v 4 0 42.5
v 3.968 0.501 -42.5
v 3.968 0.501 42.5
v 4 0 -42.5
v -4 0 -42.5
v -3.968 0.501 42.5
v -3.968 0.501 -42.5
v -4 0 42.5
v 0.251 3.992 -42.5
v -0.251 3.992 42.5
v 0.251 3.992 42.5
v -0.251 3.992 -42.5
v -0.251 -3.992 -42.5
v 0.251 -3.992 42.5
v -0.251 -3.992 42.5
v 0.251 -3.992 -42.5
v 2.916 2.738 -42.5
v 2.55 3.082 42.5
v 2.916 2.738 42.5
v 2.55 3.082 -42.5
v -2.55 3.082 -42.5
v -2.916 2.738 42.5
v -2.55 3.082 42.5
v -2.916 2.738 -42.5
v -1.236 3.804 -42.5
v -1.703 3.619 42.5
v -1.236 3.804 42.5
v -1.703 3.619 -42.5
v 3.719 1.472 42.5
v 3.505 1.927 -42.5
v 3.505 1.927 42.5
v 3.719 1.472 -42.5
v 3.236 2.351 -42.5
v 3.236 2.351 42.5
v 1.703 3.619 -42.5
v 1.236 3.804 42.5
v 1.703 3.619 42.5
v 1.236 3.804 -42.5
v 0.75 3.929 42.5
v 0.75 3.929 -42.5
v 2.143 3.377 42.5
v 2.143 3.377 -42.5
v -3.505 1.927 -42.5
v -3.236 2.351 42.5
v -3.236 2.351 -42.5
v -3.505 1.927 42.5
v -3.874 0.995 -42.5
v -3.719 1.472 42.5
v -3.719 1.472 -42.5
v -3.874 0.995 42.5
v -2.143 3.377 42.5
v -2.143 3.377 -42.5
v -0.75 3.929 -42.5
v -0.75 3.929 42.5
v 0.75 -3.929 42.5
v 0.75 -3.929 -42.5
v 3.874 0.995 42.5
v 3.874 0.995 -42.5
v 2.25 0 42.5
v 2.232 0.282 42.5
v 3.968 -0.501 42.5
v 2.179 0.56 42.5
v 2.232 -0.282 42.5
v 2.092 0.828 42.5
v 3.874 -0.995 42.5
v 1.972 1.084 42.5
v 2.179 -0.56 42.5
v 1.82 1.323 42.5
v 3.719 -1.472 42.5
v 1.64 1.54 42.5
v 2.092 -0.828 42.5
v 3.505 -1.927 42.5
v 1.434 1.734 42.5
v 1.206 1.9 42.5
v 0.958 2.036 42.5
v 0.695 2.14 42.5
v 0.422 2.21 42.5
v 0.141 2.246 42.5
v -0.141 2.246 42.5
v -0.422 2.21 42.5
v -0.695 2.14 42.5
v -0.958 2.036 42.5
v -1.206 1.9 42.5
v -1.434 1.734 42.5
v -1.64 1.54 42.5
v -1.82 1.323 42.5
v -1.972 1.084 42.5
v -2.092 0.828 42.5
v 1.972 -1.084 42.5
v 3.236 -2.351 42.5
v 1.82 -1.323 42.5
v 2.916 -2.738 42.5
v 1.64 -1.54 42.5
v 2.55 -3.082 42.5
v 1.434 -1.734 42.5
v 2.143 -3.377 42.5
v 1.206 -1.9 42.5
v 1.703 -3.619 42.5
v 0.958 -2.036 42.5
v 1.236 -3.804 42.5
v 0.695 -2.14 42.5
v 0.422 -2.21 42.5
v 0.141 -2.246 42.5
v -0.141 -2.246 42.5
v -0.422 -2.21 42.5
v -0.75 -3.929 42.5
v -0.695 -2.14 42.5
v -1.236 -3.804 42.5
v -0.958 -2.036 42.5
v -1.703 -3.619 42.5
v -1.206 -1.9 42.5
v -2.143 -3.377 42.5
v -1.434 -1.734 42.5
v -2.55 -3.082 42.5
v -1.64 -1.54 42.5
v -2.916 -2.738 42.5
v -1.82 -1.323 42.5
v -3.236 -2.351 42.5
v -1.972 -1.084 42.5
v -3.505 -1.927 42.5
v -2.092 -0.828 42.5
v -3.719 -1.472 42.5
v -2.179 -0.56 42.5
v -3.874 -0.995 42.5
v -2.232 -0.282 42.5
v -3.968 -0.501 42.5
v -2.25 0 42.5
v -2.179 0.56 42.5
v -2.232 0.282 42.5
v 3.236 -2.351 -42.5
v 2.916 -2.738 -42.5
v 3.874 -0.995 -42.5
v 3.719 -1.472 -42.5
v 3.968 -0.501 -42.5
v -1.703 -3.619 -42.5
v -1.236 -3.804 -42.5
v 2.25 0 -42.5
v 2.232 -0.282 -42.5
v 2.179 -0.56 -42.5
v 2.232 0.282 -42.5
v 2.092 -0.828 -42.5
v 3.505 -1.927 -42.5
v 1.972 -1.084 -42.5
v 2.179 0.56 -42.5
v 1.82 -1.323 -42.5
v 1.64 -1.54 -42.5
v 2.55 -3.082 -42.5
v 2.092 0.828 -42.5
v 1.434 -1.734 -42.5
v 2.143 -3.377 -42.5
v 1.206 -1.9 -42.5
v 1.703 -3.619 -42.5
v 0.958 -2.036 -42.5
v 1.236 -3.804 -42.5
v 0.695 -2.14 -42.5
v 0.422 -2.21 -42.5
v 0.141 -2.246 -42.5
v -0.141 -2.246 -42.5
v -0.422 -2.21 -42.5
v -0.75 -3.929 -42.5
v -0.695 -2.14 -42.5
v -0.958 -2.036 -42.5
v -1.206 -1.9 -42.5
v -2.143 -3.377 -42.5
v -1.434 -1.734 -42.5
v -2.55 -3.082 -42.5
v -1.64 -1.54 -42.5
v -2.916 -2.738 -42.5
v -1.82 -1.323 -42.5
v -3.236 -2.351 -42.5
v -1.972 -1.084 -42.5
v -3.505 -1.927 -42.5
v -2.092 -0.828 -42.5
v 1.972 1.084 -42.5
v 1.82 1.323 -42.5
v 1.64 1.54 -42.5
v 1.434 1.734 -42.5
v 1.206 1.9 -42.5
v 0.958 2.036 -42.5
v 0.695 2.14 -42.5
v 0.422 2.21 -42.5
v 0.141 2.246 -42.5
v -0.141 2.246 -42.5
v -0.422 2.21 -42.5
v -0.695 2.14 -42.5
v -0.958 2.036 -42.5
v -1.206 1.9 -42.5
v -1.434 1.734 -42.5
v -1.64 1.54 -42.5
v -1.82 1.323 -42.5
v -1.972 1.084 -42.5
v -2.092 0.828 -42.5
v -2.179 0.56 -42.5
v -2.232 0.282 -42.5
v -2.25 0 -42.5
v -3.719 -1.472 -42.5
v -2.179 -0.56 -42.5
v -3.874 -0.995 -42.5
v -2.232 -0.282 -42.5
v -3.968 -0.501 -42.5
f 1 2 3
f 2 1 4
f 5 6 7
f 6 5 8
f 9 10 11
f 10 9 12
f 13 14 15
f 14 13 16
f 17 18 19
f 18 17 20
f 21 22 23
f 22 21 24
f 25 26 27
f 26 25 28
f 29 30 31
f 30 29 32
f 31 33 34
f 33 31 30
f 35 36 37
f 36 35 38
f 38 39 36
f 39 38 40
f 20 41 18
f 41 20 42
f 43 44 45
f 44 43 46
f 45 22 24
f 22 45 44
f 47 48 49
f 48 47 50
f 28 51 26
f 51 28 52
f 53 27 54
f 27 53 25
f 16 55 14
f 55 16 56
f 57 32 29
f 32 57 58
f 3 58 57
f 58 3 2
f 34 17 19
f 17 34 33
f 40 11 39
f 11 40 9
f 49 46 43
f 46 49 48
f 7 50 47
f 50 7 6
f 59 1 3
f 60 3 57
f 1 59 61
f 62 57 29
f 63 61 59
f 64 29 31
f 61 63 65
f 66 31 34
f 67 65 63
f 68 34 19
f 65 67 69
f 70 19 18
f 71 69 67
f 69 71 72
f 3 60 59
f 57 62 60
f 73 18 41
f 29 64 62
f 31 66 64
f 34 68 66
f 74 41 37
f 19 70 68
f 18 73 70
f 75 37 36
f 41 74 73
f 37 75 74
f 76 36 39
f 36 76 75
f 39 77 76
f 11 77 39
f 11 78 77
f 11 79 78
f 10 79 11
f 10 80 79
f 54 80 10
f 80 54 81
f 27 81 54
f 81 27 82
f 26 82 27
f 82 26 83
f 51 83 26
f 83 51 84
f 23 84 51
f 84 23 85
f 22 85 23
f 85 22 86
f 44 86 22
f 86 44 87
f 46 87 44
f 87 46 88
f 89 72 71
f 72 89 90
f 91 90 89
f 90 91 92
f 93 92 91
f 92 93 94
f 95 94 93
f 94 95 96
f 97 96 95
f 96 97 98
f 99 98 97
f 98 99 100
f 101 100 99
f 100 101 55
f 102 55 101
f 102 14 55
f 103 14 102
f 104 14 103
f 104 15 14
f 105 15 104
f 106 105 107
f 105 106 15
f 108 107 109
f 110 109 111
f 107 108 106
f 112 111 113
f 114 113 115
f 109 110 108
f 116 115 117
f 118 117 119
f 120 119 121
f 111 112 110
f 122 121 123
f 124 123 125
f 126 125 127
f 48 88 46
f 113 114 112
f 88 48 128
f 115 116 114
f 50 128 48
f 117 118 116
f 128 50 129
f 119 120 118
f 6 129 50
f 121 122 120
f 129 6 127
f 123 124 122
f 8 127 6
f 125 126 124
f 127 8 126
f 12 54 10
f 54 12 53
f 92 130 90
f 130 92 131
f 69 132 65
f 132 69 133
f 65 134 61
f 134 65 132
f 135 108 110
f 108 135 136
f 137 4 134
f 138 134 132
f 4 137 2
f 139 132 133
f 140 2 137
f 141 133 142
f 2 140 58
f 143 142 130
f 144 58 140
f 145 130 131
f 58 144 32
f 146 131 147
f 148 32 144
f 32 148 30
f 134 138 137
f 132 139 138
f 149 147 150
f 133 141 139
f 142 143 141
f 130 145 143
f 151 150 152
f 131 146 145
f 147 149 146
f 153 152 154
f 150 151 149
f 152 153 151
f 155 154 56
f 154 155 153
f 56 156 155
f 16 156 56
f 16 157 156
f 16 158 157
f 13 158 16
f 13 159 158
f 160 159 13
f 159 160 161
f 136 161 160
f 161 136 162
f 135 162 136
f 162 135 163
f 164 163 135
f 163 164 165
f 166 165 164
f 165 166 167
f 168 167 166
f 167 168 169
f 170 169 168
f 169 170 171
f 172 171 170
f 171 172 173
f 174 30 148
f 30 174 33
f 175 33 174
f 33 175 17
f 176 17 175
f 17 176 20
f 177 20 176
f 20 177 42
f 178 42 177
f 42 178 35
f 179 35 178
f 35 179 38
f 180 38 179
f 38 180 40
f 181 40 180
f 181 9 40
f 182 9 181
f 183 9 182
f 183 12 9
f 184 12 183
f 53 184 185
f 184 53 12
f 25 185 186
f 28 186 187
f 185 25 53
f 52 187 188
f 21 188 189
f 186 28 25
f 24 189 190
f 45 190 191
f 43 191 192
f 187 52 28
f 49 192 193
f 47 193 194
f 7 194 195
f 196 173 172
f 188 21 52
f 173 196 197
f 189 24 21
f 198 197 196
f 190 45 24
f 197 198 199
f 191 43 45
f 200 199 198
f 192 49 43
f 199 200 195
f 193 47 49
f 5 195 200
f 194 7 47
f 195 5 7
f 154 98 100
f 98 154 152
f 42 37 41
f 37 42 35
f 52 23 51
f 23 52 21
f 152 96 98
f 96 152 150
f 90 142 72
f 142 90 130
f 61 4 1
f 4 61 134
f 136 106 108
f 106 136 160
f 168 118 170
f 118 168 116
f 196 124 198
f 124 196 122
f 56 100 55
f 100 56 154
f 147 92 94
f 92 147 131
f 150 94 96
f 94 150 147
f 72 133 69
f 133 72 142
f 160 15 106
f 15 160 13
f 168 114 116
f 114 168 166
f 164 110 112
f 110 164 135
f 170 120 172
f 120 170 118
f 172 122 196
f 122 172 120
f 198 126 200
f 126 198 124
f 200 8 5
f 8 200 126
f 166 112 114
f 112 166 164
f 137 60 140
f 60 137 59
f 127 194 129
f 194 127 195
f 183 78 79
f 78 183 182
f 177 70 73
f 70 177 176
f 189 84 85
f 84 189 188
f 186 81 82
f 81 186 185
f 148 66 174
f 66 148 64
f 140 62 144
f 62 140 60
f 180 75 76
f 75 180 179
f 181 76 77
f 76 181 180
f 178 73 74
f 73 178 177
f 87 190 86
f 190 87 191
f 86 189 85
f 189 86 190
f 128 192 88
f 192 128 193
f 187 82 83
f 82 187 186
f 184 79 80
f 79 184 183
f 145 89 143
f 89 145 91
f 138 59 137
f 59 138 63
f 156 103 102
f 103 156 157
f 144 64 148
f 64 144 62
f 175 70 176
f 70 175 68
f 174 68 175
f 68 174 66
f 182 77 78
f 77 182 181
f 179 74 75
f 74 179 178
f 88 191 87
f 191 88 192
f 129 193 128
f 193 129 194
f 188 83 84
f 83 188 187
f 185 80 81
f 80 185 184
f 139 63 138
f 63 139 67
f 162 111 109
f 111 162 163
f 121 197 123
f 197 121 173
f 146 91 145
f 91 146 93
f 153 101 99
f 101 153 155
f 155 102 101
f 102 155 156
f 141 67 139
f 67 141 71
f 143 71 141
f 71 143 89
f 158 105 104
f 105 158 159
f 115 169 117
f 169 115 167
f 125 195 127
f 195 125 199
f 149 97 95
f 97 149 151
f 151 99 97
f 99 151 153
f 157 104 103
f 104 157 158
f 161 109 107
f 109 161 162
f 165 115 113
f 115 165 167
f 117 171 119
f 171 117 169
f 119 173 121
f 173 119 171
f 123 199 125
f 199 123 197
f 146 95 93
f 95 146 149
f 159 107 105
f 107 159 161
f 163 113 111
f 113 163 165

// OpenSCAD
$fn = 50;


difference() {
	union() {
		translate(v = [0, 0, -42.5000000000]) {
			cylinder(h = 85, r = 4.0000000000);
		}
	}
	union() {
		translate(v = [0, 0, -100.0000000000]) {
			cylinder(h = 200, r = 2.2500000000);
		}
	}
}
